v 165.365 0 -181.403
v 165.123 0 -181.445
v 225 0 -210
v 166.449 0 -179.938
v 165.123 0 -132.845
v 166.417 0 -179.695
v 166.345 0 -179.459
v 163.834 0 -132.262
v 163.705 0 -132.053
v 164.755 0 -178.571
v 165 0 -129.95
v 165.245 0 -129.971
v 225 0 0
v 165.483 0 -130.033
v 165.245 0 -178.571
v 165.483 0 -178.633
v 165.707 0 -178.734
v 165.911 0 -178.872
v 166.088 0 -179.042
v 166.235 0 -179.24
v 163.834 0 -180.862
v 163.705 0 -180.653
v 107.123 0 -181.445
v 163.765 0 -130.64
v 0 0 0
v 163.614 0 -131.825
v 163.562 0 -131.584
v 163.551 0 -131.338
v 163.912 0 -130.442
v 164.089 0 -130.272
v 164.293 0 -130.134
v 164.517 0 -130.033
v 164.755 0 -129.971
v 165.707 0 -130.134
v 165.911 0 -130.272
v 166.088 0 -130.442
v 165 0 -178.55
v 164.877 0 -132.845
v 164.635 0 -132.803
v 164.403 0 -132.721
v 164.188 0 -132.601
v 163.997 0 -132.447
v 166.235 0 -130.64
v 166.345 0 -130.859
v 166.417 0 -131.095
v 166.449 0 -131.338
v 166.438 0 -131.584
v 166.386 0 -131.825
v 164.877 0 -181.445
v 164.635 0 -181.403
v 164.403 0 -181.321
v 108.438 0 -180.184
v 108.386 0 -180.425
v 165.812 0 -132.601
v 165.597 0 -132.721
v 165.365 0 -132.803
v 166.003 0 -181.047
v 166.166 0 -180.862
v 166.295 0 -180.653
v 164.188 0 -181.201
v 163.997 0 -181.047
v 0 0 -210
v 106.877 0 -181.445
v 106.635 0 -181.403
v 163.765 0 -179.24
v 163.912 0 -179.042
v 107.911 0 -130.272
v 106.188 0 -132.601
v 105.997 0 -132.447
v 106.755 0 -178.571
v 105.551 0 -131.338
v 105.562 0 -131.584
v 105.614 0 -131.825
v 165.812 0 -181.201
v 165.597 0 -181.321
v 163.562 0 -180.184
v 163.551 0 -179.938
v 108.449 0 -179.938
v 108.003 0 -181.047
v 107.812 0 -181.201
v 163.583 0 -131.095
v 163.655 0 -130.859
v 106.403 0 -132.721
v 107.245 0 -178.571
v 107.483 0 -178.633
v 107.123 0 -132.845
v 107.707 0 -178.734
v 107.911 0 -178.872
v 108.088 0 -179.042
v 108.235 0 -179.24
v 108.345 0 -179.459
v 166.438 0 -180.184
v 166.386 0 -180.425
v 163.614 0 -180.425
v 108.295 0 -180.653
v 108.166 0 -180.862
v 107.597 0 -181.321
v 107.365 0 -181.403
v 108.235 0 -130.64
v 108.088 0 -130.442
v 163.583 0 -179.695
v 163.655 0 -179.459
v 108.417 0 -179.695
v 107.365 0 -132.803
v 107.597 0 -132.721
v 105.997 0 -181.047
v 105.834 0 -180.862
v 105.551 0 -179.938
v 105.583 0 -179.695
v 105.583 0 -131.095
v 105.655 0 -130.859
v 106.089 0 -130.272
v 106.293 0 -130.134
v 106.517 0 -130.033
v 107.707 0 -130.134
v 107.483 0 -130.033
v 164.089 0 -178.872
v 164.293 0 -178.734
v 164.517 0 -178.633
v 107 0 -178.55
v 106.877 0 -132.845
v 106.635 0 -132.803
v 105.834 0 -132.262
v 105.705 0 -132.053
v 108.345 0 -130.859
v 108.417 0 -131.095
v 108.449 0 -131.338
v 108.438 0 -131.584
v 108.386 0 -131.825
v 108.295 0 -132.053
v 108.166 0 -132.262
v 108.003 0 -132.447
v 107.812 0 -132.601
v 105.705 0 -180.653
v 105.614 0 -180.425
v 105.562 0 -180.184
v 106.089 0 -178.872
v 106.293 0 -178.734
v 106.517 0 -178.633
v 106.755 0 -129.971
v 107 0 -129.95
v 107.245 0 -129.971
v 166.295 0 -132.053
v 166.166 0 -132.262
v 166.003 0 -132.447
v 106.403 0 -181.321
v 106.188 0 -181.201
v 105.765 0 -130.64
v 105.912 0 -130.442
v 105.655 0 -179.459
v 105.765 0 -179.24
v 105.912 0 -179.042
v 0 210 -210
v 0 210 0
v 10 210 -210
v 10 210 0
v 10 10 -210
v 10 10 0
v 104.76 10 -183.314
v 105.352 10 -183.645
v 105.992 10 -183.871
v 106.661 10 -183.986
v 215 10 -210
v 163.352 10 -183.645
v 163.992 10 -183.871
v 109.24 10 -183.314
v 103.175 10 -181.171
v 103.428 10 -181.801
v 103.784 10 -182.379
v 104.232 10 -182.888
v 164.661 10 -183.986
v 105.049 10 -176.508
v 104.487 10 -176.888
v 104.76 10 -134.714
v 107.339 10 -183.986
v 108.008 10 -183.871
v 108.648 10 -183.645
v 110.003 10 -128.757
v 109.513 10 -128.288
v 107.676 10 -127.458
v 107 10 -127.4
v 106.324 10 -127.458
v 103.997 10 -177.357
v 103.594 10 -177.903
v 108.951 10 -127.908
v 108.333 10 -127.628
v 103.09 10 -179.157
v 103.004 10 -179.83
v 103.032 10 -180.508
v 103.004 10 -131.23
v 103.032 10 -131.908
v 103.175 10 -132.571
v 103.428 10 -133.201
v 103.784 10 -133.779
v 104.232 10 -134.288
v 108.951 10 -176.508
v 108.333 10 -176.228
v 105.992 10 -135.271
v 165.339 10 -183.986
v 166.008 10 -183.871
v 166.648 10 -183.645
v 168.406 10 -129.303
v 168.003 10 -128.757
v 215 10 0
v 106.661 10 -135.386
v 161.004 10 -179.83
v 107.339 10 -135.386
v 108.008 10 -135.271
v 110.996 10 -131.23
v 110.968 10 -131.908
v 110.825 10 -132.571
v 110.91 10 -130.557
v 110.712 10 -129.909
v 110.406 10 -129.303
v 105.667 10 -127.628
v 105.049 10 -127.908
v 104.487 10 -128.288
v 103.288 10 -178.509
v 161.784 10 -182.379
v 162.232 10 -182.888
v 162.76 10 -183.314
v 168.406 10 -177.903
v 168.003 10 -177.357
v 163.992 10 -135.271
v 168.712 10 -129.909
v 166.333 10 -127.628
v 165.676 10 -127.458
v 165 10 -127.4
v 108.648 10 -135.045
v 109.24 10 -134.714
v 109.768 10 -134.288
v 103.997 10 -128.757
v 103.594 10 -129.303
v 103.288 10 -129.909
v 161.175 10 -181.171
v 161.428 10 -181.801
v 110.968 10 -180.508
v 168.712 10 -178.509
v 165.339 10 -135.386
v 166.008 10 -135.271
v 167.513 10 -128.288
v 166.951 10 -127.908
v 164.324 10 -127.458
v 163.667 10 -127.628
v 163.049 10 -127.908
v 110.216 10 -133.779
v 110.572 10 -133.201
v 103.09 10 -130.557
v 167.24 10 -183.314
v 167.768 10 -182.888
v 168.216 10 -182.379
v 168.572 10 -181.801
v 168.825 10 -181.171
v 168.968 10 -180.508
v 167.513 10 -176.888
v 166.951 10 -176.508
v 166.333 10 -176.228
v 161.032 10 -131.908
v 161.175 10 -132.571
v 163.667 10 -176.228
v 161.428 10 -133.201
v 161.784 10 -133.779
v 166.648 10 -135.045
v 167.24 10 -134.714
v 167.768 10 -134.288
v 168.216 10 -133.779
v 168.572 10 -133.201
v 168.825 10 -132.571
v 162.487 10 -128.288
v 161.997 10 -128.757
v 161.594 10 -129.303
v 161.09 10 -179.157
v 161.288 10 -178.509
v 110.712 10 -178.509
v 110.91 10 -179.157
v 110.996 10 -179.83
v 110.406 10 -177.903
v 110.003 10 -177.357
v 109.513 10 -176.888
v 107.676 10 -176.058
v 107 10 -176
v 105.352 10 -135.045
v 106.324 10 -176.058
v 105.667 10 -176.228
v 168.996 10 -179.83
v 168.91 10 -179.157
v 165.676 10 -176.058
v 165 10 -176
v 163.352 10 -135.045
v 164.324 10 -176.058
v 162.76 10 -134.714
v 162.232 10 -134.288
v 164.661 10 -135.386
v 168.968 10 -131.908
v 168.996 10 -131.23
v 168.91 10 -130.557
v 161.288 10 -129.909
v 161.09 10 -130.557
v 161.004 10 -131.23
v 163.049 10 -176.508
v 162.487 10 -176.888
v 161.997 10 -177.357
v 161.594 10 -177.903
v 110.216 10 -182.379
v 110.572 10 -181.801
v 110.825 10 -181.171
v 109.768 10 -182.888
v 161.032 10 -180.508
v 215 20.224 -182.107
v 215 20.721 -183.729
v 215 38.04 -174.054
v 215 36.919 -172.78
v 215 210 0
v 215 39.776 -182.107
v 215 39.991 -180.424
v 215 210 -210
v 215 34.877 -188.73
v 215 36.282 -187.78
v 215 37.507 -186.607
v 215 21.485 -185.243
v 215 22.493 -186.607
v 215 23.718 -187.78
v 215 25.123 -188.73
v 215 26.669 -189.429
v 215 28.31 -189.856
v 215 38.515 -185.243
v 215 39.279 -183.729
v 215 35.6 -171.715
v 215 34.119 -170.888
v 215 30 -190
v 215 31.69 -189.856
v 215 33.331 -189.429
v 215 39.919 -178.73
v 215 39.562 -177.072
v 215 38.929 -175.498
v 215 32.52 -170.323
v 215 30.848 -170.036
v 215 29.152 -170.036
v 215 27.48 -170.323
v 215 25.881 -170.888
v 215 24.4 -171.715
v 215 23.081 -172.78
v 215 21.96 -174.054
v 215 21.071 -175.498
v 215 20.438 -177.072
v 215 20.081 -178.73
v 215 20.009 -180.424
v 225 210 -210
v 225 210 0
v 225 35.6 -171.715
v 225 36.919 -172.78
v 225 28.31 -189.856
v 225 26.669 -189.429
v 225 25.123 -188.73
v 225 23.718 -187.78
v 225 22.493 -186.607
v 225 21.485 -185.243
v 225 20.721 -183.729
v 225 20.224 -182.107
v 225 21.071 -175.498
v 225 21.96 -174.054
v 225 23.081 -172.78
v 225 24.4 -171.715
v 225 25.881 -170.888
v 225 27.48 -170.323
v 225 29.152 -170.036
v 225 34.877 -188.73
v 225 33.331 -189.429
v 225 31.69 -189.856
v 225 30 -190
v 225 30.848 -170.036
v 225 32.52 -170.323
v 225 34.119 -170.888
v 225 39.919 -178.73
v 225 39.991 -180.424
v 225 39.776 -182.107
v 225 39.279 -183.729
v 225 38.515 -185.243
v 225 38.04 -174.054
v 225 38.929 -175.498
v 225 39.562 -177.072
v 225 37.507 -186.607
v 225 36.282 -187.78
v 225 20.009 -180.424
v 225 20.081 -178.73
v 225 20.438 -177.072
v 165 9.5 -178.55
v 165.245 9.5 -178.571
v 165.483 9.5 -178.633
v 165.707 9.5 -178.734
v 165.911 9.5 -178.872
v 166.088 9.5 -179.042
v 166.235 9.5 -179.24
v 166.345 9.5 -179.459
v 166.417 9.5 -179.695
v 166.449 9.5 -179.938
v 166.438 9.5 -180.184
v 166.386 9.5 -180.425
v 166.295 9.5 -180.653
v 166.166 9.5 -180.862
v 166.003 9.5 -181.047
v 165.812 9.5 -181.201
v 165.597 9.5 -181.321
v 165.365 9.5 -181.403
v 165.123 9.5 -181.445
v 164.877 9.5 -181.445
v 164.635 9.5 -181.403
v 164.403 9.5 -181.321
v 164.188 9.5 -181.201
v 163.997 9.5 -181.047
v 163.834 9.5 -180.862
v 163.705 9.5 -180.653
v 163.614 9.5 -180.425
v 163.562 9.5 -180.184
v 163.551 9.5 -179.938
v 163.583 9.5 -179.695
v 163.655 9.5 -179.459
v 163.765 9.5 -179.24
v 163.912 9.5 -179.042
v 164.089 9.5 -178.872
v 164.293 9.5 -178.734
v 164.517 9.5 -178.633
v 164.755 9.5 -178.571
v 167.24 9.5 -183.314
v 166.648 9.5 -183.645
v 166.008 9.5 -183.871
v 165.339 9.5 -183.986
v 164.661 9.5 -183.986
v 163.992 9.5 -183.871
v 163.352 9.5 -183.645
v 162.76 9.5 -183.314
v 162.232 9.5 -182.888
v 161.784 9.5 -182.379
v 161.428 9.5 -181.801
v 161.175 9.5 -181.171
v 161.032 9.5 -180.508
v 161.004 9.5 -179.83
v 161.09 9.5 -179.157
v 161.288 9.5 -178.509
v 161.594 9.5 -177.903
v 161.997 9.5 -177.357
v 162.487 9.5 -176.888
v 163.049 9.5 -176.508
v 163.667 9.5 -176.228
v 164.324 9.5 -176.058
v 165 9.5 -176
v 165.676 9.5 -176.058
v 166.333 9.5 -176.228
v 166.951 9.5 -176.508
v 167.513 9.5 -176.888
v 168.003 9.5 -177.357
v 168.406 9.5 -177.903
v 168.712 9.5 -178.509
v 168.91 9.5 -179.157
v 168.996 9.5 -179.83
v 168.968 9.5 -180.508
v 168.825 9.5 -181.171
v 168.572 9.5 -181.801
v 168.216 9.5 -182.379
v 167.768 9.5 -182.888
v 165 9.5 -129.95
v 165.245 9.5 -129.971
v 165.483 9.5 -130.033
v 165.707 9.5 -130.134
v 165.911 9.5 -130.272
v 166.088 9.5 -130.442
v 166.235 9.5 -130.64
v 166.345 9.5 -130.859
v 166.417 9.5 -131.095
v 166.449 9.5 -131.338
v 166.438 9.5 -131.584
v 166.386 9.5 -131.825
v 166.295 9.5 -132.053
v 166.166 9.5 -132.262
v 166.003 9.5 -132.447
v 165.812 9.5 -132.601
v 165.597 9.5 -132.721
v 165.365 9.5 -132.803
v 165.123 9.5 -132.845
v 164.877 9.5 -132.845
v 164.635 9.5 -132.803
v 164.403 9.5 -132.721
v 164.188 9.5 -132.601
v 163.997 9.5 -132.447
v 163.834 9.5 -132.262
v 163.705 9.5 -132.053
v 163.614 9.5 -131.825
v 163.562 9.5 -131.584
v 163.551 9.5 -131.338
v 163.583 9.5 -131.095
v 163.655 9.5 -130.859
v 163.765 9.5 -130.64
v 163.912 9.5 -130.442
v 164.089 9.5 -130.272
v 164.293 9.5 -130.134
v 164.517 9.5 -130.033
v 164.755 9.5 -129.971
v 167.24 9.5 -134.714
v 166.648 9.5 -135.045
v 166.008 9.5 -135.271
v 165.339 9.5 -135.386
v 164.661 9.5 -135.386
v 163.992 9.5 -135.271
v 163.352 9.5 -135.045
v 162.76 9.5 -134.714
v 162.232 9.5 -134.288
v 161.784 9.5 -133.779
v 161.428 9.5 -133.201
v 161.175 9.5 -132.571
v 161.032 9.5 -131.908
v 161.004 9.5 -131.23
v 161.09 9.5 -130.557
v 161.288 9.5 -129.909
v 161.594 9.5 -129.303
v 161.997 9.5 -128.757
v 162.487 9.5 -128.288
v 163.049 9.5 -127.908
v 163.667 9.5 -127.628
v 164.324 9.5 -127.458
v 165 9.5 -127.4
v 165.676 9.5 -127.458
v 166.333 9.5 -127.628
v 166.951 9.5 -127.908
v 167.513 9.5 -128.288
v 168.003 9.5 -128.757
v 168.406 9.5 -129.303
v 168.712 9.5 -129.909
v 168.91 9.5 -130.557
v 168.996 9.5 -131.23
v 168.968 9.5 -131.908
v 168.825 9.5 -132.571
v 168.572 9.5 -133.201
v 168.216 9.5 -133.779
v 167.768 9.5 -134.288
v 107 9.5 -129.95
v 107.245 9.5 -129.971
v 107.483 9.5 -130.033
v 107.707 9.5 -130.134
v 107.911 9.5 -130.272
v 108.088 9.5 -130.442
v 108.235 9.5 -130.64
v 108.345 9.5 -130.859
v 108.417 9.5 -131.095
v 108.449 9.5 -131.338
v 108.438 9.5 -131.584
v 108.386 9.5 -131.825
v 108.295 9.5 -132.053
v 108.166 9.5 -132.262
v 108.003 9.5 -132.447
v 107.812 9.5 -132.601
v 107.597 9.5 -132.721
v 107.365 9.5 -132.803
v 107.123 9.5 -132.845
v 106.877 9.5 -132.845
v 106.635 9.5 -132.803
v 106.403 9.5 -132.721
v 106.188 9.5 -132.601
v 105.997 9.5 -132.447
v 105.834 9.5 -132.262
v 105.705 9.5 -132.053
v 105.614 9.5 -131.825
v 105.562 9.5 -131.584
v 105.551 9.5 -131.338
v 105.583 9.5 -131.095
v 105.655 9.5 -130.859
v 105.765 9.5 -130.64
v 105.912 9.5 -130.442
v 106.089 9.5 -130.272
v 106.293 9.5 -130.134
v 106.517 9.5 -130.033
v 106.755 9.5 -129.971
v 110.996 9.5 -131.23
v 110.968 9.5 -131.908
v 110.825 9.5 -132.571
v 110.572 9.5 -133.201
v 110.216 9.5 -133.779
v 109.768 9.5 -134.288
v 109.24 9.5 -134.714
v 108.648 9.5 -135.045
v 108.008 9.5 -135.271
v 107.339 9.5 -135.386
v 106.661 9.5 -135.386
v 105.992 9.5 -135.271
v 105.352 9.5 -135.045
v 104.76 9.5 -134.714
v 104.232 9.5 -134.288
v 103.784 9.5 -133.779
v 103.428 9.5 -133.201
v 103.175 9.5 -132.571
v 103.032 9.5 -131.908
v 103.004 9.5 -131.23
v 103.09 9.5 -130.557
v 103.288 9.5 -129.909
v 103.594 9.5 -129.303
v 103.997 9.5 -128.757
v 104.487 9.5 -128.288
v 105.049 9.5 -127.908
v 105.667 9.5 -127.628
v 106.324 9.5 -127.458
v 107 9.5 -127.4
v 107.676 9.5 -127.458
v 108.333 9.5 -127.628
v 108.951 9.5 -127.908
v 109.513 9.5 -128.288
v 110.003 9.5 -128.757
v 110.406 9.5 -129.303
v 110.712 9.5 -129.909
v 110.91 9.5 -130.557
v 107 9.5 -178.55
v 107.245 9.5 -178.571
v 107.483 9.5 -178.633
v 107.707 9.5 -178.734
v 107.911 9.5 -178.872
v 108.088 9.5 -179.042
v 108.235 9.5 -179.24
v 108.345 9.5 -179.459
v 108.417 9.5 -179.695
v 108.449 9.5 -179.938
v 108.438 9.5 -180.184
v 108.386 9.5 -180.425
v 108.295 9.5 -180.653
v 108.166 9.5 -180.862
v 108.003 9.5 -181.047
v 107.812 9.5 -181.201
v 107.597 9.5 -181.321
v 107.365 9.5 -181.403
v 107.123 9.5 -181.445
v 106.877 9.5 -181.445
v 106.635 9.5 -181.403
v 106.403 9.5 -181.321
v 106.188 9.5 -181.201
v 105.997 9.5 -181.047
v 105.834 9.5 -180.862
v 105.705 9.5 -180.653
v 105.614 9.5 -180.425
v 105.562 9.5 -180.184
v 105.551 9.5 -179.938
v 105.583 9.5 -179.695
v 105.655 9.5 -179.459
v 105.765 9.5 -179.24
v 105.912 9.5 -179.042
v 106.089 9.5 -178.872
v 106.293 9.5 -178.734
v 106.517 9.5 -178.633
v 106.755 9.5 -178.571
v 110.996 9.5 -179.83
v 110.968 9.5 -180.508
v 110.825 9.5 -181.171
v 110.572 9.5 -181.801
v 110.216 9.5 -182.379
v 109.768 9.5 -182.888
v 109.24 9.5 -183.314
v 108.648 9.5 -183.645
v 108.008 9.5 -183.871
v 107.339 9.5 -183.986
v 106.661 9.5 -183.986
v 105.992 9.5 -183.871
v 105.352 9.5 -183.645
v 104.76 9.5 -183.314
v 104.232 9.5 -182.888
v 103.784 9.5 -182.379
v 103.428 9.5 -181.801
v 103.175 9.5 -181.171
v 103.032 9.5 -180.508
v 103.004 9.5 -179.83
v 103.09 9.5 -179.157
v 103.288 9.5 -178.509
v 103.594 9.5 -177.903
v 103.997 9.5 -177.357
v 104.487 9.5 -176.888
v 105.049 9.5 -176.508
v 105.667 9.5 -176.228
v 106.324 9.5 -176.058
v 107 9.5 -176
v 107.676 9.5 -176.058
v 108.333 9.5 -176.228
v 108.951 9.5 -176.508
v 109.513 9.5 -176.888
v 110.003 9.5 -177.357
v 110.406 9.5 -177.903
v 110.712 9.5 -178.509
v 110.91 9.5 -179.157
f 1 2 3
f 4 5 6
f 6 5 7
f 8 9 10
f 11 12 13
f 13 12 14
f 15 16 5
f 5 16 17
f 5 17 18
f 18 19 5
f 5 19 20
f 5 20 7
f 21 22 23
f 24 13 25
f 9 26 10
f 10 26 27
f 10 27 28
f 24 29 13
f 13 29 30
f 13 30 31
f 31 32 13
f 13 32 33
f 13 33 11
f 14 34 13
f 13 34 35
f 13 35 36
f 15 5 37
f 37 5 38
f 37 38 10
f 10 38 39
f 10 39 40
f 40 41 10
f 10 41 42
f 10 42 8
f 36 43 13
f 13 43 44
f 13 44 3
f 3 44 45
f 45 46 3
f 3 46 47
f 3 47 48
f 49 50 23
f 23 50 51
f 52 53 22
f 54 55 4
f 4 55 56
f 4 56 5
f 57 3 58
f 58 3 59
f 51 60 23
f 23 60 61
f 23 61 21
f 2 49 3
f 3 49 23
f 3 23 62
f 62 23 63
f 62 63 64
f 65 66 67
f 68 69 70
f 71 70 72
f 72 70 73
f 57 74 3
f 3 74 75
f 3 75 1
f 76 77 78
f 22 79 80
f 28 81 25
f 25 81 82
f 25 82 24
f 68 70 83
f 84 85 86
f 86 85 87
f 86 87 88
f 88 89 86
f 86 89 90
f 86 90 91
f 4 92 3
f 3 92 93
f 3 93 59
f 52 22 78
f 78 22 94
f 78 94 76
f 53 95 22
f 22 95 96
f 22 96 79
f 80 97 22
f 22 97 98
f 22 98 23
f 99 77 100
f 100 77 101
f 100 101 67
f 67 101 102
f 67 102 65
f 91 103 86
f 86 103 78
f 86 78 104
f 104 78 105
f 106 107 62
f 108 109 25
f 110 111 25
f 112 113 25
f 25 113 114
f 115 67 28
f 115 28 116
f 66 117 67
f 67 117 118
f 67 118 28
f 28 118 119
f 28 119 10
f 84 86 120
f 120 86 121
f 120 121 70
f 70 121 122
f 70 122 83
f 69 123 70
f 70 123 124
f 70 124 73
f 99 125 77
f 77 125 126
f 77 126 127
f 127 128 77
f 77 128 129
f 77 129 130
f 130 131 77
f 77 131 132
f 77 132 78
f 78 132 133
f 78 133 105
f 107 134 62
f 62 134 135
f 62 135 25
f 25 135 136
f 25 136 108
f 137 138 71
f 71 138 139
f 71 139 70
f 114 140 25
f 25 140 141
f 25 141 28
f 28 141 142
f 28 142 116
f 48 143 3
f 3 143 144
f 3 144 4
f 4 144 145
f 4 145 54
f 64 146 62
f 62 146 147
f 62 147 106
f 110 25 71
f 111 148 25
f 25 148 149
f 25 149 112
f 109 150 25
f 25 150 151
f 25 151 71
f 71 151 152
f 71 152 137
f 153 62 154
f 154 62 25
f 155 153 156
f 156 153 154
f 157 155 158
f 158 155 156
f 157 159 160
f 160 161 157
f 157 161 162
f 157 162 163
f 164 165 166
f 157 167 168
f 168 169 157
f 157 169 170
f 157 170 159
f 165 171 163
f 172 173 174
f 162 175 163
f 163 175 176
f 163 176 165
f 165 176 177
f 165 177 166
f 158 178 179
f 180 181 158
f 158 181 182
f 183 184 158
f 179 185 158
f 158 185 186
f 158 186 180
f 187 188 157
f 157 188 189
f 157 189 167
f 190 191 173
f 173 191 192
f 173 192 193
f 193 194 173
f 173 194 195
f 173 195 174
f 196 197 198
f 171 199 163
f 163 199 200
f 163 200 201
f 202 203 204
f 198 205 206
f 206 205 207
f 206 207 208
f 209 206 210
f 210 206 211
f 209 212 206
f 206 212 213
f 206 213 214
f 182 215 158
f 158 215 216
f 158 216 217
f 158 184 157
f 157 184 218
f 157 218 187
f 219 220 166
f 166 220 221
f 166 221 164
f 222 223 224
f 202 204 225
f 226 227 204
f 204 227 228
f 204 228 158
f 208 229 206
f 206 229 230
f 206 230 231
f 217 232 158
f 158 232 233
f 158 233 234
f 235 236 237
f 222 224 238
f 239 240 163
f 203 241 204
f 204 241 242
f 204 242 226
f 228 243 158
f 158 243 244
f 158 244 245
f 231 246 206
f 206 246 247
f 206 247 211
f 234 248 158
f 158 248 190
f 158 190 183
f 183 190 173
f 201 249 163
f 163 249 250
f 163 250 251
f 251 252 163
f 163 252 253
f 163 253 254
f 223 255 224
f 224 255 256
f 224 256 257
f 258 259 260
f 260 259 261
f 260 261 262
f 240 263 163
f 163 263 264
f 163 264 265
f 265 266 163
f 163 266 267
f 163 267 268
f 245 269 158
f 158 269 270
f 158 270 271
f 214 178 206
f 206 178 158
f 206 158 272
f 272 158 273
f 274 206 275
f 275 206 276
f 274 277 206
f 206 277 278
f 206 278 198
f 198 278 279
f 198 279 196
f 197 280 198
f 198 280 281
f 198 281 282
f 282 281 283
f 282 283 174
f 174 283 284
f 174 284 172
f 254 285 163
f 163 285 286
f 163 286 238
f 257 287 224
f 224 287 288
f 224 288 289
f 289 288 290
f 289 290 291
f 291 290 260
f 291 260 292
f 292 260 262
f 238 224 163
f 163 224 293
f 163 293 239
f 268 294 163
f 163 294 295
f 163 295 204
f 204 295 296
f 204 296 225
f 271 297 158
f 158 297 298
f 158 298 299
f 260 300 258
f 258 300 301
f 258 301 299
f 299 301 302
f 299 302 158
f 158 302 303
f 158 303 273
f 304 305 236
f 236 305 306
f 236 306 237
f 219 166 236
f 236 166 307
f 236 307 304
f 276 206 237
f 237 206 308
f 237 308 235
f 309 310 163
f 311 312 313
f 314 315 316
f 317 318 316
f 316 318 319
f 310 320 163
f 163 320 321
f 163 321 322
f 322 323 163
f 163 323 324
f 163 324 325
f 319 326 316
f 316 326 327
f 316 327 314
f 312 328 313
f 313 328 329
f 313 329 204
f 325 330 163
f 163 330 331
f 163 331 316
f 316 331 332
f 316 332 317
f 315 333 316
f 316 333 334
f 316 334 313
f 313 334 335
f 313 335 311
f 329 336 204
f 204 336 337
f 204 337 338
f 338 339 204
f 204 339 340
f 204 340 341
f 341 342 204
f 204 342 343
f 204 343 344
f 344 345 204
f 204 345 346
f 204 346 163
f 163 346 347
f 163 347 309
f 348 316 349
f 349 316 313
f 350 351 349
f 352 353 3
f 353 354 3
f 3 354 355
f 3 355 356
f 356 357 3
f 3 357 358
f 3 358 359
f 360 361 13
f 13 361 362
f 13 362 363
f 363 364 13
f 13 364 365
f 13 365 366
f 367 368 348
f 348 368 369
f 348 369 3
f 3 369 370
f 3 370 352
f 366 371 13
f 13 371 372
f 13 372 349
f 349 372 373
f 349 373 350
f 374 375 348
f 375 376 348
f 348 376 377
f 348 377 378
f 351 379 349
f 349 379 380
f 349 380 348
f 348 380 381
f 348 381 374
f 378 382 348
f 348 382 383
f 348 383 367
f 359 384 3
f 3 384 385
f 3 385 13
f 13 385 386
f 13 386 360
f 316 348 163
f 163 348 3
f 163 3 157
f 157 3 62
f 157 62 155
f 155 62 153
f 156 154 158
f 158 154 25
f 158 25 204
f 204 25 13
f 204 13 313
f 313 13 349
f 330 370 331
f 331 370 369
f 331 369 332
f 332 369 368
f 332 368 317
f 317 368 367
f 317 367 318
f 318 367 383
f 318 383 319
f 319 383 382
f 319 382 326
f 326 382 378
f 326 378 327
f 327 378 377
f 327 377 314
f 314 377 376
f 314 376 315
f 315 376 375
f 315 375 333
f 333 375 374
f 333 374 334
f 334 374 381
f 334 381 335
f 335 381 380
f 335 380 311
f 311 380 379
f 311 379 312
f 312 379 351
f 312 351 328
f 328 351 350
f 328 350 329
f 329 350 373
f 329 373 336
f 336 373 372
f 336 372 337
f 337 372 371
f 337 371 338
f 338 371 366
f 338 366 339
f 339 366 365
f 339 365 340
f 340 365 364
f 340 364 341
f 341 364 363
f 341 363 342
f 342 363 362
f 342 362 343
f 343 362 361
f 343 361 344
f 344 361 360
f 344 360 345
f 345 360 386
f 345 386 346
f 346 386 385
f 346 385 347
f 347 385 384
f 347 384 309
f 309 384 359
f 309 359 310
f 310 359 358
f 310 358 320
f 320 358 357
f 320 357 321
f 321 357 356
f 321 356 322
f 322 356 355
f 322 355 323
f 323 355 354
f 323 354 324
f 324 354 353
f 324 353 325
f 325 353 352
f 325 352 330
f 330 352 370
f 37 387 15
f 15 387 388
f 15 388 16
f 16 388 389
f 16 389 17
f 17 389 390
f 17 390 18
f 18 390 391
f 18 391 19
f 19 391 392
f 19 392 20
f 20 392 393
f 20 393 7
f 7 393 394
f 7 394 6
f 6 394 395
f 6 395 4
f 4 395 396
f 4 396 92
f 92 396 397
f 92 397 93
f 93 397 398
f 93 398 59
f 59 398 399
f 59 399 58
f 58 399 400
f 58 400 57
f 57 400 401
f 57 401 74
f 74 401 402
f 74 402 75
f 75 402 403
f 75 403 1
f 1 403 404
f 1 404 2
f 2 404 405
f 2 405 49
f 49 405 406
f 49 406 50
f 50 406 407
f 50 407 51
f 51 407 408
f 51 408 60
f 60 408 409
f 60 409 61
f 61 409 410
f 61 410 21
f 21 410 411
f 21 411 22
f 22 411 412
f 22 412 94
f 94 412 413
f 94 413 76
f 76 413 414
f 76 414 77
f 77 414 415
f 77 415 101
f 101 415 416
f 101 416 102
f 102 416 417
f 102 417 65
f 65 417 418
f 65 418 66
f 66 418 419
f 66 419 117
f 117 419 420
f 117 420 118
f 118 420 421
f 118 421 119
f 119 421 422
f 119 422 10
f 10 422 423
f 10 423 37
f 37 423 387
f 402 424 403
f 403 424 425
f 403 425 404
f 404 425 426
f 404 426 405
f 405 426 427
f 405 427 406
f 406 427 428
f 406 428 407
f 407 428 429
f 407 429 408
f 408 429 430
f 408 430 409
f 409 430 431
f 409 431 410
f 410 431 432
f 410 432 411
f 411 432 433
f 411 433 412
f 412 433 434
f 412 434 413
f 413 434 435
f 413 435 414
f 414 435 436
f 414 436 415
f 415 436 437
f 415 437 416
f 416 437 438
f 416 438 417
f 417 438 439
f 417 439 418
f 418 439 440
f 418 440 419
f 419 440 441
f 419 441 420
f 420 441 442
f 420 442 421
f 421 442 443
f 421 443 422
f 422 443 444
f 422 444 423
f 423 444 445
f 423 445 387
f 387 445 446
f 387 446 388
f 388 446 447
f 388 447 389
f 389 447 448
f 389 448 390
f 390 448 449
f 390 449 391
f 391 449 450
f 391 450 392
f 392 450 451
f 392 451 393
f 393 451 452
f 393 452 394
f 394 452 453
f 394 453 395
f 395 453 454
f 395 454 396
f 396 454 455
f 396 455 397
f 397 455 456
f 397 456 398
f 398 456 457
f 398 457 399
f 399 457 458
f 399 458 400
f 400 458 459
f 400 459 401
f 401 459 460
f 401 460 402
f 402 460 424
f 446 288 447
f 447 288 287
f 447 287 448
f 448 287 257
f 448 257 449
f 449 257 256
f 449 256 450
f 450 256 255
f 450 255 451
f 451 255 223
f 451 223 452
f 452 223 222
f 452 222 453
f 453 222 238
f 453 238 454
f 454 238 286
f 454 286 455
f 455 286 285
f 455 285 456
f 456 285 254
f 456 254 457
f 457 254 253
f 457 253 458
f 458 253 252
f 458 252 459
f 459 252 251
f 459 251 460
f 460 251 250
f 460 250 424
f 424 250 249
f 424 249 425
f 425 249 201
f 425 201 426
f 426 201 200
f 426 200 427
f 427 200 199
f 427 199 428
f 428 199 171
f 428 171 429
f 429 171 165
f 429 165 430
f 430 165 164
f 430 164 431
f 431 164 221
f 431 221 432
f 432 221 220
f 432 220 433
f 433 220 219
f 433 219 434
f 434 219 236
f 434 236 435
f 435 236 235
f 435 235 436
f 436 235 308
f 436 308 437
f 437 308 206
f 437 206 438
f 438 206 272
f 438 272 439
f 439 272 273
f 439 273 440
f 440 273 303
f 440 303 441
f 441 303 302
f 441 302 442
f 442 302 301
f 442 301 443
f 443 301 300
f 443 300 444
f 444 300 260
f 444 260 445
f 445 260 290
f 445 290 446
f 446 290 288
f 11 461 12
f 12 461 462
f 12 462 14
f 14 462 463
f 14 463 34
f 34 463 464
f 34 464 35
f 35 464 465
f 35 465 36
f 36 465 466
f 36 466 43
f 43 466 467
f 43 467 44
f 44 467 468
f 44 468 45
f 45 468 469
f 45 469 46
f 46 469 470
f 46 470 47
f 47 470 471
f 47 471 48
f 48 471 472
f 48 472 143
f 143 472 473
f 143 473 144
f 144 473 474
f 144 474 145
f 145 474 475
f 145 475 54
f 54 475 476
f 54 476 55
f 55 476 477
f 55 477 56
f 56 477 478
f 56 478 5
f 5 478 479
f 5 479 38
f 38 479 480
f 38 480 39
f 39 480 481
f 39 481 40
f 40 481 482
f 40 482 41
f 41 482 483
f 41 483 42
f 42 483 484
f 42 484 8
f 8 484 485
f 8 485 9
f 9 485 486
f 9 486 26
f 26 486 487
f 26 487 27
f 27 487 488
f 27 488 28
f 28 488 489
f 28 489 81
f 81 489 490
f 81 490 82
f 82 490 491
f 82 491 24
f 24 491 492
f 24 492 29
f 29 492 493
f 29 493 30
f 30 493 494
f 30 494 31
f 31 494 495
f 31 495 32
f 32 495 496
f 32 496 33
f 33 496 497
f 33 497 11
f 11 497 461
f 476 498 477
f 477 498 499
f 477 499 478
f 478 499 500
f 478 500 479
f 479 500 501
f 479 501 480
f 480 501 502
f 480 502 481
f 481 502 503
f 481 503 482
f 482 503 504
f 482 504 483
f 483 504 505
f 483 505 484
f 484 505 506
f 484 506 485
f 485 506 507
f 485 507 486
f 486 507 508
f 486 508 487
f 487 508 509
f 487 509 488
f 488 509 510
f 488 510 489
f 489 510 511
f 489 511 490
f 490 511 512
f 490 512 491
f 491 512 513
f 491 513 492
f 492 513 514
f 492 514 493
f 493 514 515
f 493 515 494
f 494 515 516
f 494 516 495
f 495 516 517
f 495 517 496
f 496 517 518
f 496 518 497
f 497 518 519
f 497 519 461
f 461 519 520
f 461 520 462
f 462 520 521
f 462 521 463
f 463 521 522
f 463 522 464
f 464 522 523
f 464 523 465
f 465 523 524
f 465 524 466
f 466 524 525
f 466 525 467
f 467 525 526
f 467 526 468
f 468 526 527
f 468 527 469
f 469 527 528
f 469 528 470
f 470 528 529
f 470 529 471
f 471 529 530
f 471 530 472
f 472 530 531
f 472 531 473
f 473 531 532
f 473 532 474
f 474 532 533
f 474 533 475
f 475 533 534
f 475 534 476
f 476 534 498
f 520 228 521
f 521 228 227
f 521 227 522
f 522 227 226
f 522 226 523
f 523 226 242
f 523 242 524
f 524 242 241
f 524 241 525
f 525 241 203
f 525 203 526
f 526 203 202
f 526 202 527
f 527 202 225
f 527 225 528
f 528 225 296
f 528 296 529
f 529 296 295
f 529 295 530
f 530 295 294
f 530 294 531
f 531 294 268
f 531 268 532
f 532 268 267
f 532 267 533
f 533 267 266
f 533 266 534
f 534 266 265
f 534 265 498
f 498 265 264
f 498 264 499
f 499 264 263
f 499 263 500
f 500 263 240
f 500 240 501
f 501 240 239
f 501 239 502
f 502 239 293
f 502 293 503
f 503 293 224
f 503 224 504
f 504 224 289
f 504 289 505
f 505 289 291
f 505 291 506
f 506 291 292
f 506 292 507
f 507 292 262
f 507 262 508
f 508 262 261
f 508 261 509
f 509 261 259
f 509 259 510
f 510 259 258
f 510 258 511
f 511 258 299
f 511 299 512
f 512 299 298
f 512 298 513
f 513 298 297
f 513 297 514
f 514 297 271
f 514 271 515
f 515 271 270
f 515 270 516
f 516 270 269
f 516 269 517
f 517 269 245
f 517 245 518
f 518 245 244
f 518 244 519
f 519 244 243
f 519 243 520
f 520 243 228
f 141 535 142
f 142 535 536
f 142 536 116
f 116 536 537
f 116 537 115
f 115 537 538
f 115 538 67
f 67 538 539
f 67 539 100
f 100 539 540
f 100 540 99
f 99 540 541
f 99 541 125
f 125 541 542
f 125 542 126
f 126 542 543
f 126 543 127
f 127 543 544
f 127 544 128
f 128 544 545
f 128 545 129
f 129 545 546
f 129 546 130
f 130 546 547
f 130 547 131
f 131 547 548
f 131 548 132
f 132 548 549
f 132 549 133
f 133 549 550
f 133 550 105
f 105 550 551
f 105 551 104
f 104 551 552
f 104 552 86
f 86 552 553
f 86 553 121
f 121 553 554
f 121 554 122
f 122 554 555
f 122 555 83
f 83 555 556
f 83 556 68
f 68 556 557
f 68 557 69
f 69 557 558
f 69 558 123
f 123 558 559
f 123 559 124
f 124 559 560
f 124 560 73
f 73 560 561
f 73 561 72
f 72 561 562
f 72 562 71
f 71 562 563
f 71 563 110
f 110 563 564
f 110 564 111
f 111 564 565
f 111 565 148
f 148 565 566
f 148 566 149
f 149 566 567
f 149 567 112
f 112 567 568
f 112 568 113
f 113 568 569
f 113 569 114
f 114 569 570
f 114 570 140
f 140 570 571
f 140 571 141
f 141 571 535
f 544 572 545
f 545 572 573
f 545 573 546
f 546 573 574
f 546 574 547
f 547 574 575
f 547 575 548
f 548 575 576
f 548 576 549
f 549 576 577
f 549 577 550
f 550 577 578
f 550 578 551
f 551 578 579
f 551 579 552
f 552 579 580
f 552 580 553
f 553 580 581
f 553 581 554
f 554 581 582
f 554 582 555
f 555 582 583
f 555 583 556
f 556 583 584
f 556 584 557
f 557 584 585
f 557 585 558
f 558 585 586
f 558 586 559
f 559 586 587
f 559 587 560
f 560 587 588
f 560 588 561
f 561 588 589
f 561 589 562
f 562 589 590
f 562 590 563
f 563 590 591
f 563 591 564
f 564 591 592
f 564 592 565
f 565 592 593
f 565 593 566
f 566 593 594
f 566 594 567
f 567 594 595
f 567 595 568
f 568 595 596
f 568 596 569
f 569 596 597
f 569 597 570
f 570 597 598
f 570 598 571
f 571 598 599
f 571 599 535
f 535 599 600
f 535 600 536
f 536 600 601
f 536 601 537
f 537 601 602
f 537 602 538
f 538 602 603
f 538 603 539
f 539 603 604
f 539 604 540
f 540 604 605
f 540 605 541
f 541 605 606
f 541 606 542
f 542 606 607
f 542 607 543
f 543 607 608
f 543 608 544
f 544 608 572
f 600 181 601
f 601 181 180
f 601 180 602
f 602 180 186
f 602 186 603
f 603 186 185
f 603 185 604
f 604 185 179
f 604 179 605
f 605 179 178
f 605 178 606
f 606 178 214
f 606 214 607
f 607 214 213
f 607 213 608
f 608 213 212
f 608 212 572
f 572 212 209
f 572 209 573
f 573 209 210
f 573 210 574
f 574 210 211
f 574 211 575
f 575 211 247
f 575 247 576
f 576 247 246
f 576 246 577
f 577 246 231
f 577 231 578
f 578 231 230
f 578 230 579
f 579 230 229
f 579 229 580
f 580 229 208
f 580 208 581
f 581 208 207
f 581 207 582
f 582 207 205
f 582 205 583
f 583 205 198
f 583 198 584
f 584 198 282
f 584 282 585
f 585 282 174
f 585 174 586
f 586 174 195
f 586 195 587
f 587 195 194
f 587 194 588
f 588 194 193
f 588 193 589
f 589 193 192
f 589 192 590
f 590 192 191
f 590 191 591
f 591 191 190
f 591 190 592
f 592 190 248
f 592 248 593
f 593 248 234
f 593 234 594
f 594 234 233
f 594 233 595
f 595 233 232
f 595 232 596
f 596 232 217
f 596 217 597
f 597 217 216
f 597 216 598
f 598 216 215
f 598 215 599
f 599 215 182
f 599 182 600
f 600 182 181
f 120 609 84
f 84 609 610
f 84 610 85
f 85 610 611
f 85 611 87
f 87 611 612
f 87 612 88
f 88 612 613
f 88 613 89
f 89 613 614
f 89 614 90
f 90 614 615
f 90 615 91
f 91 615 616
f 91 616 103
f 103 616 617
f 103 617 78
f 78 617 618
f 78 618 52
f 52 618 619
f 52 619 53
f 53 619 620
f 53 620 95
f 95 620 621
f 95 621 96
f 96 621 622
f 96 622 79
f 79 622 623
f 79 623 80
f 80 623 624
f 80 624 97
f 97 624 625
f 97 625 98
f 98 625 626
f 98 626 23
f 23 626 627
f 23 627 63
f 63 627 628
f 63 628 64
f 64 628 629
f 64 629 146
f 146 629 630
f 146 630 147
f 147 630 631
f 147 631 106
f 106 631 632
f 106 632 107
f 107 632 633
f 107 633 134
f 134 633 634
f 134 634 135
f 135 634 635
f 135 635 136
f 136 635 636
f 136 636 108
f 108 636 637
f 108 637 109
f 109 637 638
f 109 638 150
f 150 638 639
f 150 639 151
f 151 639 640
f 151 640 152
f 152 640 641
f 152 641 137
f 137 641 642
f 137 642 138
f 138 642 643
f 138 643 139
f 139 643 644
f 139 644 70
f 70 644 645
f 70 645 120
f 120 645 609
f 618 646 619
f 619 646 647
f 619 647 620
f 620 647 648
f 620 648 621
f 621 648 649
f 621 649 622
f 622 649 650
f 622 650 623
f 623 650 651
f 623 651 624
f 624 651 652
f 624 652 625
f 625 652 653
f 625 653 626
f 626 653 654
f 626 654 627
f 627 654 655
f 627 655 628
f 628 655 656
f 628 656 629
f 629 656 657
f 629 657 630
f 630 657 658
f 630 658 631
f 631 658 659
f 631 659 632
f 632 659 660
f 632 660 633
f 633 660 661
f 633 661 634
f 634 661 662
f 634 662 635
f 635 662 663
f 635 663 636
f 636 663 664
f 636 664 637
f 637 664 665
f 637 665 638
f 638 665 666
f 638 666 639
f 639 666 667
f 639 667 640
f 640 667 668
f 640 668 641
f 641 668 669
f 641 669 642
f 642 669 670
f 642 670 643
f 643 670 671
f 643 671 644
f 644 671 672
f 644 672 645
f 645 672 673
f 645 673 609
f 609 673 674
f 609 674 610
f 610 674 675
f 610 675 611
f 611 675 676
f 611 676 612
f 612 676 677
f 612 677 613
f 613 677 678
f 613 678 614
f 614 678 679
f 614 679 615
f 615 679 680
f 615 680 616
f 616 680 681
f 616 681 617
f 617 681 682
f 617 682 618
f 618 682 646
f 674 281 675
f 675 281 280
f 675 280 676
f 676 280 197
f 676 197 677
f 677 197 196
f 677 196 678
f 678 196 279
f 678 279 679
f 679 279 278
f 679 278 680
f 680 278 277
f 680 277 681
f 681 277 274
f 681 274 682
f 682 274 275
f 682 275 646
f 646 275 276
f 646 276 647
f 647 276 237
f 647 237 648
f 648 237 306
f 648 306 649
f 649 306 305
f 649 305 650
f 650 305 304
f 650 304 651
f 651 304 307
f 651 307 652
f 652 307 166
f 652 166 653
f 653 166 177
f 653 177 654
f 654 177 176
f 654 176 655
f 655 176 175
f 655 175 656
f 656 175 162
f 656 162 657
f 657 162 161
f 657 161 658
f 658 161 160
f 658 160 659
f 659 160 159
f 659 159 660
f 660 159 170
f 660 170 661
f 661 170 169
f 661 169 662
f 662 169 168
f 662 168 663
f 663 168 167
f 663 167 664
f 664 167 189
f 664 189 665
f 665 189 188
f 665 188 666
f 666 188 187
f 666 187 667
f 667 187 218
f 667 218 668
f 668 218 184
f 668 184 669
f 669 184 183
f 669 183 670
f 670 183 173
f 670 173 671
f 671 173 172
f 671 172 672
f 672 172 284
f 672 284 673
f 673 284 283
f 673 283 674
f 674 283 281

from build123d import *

# Parameters (mm, degrees)
EXTRUDE_2_DEPTH                = 210
SKETCH_3_R                     = 10
CUT_EXTRUDE_1_DEPTH            = 10
HOLE_WIZARD_M2_5_1_D           = 2.9
HOLE_WIZARD_M2_5_1_CBORE_D     = 8
HOLE_WIZARD_M2_5_1_CBORE_DEPTH = 0.5


with BuildPart() as part:
    # 草图2 → 凸台-拉伸2 (new body)
    with BuildSketch(Plane.XY):
        Polygon((0, 0), (225, 0), (225, 210), (215, 210), (215, 10), (10, 10), (10, 210), (0, 210), align=None)
    extrude(amount=-EXTRUDE_2_DEPTH)

    # 草图3 → 切除-拉伸1 (cut)
    with BuildSketch(Plane(origin=(225, 0, 0), x_dir=(0, 0, -1), z_dir=(1, 0, 0))):
        with Locations((180, 30)):
            Circle(SKETCH_3_R)
    extrude(amount=-CUT_EXTRUDE_1_DEPTH, mode=Mode.SUBTRACT)

    # M2.5 六角头螺栓的柱形沉头孔1 (through all)
    with Locations(Plane(origin=(0, 10, 0), x_dir=(1, 0, 0), z_dir=(0, 1, 0))):
        with Locations((107, 180), (107, 131.4), (165, 131.4), (165, 180)):
            CounterBoreHole(HOLE_WIZARD_M2_5_1_D / 2, HOLE_WIZARD_M2_5_1_CBORE_D / 2, HOLE_WIZARD_M2_5_1_CBORE_DEPTH)


solid = part.part
